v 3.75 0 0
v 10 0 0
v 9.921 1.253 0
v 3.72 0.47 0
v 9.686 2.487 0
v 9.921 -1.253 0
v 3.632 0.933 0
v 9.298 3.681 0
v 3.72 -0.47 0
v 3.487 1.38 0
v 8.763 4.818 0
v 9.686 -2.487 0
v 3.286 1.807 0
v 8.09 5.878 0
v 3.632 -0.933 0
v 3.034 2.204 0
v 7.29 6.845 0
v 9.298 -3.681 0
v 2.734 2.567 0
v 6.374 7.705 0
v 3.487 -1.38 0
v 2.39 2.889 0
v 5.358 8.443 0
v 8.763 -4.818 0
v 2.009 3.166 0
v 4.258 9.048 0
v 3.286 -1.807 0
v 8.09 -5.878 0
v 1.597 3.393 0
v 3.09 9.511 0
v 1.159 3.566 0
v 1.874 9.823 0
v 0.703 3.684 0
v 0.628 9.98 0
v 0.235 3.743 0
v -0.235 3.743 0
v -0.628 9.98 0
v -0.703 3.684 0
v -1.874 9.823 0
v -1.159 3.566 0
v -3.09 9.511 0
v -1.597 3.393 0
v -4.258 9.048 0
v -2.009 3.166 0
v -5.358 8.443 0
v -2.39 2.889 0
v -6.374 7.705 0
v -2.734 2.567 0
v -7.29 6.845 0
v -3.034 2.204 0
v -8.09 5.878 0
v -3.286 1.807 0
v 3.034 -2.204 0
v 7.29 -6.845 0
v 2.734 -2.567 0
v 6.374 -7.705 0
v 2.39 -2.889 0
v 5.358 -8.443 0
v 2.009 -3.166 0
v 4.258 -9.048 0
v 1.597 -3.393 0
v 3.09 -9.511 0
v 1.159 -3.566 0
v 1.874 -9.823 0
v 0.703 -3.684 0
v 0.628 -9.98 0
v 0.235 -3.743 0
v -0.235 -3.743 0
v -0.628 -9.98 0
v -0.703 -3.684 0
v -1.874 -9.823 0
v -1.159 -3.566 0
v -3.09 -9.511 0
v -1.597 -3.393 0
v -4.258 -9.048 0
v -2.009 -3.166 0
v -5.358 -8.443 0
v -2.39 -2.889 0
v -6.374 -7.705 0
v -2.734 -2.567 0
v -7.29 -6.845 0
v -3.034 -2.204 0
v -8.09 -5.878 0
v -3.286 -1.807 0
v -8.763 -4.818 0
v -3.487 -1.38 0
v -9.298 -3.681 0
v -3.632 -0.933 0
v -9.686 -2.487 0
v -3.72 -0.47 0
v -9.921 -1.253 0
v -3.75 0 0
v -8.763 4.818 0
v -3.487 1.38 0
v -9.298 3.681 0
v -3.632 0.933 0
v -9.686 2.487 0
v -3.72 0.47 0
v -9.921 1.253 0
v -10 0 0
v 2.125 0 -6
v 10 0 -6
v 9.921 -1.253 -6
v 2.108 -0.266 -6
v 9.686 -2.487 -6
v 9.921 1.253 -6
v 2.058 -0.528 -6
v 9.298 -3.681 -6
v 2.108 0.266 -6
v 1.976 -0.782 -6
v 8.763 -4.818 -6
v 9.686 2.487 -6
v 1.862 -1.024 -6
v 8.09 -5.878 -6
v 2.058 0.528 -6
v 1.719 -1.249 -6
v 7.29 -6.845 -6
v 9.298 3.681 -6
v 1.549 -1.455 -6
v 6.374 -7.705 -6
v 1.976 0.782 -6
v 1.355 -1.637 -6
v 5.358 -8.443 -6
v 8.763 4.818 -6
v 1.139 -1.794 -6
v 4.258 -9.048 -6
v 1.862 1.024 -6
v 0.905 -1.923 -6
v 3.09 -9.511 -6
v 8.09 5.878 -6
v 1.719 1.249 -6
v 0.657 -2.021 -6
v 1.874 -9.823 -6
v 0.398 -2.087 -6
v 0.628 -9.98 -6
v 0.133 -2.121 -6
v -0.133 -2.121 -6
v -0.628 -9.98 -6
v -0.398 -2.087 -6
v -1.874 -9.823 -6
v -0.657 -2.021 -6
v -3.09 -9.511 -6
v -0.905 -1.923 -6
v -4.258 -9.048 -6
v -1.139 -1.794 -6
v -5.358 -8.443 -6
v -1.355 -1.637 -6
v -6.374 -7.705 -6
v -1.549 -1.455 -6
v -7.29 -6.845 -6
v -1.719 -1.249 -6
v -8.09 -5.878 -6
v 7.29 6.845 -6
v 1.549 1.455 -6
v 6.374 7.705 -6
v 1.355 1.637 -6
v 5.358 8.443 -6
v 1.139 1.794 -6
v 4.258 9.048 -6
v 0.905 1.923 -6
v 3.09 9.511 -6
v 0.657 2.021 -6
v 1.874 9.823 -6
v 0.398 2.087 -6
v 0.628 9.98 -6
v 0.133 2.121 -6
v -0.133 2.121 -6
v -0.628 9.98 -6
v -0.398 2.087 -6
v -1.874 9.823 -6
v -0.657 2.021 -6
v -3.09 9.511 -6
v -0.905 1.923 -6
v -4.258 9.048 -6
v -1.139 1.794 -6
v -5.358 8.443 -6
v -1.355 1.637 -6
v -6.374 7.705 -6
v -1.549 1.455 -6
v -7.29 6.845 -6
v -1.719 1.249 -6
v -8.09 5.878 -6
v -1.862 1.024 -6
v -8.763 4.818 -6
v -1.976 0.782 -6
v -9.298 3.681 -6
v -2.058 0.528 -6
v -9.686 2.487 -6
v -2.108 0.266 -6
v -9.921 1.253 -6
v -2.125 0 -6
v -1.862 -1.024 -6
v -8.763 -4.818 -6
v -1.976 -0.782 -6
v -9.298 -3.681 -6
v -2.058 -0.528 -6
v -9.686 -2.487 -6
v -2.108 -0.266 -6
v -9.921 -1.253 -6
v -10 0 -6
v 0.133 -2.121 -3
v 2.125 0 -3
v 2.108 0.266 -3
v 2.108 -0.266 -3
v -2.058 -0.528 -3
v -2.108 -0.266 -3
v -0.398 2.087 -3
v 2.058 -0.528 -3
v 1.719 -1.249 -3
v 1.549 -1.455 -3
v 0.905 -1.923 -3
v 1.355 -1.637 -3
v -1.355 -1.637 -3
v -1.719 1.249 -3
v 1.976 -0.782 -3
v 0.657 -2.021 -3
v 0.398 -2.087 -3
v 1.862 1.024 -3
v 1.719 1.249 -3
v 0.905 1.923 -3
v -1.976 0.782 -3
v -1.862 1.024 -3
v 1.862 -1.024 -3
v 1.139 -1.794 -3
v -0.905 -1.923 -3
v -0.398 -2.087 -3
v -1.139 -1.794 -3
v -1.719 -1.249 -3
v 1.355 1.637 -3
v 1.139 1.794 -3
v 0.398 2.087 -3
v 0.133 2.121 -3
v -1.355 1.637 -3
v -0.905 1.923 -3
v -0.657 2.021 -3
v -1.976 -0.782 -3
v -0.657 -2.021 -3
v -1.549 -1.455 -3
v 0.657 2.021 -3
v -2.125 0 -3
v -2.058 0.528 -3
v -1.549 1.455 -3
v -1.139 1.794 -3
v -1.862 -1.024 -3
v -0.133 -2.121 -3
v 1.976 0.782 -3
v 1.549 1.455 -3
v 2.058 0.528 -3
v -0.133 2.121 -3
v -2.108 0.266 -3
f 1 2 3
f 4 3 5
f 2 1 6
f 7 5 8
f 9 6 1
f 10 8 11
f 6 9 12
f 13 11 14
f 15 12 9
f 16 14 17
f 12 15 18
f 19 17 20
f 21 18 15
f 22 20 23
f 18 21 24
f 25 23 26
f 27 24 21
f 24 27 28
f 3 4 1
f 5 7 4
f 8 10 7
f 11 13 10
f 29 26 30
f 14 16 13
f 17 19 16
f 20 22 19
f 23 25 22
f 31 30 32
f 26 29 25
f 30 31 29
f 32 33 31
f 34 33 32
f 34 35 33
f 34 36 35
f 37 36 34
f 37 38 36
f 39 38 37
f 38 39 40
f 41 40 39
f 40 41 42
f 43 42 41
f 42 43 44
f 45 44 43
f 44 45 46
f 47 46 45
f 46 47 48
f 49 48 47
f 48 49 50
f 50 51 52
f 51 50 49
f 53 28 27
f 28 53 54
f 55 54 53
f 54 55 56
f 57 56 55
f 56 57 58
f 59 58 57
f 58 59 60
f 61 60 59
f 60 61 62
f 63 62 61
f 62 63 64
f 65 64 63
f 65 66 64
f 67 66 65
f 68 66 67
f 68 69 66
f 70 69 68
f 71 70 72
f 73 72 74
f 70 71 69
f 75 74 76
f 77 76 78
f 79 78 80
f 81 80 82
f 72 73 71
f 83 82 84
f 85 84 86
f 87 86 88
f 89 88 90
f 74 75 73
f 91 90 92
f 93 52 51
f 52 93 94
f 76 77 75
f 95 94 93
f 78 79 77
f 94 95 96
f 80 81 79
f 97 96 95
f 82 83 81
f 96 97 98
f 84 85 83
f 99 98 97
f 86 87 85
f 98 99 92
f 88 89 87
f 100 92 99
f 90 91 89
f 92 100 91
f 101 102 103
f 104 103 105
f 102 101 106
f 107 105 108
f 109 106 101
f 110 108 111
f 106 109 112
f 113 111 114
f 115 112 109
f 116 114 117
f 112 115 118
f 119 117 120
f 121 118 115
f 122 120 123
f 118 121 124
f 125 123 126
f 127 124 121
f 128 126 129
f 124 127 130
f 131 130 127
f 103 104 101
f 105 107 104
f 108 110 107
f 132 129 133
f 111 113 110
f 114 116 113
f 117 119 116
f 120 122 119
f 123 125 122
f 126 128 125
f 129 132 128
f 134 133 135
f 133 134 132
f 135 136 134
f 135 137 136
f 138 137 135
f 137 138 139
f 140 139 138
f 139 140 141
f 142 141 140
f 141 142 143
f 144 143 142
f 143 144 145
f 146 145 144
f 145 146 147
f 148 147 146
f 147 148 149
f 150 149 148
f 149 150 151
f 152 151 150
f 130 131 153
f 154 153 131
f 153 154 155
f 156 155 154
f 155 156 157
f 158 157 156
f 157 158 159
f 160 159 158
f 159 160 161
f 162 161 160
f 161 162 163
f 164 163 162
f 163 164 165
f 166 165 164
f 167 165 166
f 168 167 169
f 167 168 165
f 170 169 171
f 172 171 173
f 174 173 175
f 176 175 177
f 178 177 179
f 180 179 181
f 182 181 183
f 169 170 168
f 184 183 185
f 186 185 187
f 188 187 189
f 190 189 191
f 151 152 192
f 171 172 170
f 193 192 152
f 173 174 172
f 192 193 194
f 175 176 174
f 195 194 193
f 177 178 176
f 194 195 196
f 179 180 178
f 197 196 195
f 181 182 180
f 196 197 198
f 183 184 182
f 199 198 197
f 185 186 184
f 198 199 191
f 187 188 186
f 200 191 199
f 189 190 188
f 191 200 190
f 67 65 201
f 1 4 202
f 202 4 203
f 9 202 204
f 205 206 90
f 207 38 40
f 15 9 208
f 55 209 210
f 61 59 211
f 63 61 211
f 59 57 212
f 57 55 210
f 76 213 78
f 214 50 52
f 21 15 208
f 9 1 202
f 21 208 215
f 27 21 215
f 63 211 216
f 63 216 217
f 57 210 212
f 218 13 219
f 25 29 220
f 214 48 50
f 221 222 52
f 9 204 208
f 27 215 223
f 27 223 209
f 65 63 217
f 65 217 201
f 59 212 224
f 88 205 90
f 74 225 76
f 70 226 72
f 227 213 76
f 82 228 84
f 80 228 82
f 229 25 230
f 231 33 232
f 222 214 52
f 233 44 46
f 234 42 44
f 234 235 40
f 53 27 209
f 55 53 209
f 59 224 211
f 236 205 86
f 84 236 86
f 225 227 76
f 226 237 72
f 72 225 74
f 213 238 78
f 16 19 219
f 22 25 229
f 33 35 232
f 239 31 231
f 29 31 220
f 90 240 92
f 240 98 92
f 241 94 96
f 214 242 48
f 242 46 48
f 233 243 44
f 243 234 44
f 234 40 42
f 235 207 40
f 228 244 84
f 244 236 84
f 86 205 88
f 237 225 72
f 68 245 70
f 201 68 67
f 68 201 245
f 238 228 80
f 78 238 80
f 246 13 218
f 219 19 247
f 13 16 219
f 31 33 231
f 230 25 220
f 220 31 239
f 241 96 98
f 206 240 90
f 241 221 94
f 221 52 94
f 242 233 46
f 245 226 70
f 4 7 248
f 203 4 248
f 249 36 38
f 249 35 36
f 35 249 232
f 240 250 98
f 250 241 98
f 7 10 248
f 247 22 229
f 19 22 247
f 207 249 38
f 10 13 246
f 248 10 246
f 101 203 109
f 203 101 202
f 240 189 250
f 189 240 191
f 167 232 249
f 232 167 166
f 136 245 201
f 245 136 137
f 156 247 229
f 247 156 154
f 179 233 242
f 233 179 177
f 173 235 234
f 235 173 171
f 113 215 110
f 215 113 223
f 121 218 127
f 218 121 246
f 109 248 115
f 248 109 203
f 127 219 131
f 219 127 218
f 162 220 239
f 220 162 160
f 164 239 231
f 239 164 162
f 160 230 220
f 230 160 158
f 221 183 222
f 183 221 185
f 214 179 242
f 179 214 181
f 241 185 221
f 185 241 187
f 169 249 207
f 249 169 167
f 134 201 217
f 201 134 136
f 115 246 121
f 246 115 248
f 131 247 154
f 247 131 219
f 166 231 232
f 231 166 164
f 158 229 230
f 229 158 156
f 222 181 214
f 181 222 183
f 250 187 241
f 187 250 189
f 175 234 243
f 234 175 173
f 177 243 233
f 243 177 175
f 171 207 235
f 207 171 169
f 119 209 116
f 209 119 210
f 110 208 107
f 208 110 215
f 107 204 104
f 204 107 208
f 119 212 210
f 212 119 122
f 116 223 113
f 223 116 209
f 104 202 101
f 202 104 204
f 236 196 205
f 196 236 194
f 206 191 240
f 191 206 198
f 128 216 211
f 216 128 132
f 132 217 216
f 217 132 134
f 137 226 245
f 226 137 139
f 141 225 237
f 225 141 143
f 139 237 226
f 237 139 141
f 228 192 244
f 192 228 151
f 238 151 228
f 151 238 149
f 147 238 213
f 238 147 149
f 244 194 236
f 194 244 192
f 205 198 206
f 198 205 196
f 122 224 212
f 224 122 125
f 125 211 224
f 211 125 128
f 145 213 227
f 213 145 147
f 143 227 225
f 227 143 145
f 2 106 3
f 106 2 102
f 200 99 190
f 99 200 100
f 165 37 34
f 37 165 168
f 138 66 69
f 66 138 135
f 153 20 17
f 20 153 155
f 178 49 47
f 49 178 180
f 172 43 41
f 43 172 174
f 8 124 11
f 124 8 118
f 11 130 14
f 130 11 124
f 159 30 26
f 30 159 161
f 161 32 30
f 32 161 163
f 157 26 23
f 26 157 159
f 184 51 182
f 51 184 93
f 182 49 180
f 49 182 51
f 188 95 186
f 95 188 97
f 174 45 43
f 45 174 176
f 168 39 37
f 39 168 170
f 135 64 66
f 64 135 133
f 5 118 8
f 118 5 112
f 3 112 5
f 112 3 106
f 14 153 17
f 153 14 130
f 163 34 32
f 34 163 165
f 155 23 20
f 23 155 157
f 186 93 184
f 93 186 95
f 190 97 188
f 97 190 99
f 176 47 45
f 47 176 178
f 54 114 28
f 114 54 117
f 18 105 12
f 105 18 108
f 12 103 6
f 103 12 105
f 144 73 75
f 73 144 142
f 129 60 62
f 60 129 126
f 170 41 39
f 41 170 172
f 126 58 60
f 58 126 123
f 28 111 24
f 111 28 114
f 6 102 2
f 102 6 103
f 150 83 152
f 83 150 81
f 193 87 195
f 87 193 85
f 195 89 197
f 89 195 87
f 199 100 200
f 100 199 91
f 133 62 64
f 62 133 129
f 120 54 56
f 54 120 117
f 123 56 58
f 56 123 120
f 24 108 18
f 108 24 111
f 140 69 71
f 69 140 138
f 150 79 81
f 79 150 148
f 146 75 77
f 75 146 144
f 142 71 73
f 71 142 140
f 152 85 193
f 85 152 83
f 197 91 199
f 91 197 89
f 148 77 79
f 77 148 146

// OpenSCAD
$fn = 50;


difference() {
	union() {
		translate(v = [0, 0, -6.0000000000]) {
			cylinder(h = 6, r = 10.0000000000);
		}
		cylinder(h = 0, r = 16.0000000000);
	}
	union() {
		translate(v = [0, 0, 0]) {
			rotate(a = [0, 0, 0]) {
				difference() {
					union() {
						#translate(v = [0, 0, -6.0000000000]) {
							cylinder(h = 6, r = 2.0000000000);
						}
						#translate(v = [0, 0, -3]) {
							cylinder(h = 3, r1 = 2.1250000000, r2 = 3.7500000000);
						}
						#translate(v = [0, 0, -6.0000000000]) {
							cylinder(h = 6, r = 2.1250000000);
						}
						#translate(v = [0, 0, -6.0000000000]) {
							cylinder(h = 6, r = 2.0000000000);
						}
					}
					union();
				}
			}
		}
	}
}
